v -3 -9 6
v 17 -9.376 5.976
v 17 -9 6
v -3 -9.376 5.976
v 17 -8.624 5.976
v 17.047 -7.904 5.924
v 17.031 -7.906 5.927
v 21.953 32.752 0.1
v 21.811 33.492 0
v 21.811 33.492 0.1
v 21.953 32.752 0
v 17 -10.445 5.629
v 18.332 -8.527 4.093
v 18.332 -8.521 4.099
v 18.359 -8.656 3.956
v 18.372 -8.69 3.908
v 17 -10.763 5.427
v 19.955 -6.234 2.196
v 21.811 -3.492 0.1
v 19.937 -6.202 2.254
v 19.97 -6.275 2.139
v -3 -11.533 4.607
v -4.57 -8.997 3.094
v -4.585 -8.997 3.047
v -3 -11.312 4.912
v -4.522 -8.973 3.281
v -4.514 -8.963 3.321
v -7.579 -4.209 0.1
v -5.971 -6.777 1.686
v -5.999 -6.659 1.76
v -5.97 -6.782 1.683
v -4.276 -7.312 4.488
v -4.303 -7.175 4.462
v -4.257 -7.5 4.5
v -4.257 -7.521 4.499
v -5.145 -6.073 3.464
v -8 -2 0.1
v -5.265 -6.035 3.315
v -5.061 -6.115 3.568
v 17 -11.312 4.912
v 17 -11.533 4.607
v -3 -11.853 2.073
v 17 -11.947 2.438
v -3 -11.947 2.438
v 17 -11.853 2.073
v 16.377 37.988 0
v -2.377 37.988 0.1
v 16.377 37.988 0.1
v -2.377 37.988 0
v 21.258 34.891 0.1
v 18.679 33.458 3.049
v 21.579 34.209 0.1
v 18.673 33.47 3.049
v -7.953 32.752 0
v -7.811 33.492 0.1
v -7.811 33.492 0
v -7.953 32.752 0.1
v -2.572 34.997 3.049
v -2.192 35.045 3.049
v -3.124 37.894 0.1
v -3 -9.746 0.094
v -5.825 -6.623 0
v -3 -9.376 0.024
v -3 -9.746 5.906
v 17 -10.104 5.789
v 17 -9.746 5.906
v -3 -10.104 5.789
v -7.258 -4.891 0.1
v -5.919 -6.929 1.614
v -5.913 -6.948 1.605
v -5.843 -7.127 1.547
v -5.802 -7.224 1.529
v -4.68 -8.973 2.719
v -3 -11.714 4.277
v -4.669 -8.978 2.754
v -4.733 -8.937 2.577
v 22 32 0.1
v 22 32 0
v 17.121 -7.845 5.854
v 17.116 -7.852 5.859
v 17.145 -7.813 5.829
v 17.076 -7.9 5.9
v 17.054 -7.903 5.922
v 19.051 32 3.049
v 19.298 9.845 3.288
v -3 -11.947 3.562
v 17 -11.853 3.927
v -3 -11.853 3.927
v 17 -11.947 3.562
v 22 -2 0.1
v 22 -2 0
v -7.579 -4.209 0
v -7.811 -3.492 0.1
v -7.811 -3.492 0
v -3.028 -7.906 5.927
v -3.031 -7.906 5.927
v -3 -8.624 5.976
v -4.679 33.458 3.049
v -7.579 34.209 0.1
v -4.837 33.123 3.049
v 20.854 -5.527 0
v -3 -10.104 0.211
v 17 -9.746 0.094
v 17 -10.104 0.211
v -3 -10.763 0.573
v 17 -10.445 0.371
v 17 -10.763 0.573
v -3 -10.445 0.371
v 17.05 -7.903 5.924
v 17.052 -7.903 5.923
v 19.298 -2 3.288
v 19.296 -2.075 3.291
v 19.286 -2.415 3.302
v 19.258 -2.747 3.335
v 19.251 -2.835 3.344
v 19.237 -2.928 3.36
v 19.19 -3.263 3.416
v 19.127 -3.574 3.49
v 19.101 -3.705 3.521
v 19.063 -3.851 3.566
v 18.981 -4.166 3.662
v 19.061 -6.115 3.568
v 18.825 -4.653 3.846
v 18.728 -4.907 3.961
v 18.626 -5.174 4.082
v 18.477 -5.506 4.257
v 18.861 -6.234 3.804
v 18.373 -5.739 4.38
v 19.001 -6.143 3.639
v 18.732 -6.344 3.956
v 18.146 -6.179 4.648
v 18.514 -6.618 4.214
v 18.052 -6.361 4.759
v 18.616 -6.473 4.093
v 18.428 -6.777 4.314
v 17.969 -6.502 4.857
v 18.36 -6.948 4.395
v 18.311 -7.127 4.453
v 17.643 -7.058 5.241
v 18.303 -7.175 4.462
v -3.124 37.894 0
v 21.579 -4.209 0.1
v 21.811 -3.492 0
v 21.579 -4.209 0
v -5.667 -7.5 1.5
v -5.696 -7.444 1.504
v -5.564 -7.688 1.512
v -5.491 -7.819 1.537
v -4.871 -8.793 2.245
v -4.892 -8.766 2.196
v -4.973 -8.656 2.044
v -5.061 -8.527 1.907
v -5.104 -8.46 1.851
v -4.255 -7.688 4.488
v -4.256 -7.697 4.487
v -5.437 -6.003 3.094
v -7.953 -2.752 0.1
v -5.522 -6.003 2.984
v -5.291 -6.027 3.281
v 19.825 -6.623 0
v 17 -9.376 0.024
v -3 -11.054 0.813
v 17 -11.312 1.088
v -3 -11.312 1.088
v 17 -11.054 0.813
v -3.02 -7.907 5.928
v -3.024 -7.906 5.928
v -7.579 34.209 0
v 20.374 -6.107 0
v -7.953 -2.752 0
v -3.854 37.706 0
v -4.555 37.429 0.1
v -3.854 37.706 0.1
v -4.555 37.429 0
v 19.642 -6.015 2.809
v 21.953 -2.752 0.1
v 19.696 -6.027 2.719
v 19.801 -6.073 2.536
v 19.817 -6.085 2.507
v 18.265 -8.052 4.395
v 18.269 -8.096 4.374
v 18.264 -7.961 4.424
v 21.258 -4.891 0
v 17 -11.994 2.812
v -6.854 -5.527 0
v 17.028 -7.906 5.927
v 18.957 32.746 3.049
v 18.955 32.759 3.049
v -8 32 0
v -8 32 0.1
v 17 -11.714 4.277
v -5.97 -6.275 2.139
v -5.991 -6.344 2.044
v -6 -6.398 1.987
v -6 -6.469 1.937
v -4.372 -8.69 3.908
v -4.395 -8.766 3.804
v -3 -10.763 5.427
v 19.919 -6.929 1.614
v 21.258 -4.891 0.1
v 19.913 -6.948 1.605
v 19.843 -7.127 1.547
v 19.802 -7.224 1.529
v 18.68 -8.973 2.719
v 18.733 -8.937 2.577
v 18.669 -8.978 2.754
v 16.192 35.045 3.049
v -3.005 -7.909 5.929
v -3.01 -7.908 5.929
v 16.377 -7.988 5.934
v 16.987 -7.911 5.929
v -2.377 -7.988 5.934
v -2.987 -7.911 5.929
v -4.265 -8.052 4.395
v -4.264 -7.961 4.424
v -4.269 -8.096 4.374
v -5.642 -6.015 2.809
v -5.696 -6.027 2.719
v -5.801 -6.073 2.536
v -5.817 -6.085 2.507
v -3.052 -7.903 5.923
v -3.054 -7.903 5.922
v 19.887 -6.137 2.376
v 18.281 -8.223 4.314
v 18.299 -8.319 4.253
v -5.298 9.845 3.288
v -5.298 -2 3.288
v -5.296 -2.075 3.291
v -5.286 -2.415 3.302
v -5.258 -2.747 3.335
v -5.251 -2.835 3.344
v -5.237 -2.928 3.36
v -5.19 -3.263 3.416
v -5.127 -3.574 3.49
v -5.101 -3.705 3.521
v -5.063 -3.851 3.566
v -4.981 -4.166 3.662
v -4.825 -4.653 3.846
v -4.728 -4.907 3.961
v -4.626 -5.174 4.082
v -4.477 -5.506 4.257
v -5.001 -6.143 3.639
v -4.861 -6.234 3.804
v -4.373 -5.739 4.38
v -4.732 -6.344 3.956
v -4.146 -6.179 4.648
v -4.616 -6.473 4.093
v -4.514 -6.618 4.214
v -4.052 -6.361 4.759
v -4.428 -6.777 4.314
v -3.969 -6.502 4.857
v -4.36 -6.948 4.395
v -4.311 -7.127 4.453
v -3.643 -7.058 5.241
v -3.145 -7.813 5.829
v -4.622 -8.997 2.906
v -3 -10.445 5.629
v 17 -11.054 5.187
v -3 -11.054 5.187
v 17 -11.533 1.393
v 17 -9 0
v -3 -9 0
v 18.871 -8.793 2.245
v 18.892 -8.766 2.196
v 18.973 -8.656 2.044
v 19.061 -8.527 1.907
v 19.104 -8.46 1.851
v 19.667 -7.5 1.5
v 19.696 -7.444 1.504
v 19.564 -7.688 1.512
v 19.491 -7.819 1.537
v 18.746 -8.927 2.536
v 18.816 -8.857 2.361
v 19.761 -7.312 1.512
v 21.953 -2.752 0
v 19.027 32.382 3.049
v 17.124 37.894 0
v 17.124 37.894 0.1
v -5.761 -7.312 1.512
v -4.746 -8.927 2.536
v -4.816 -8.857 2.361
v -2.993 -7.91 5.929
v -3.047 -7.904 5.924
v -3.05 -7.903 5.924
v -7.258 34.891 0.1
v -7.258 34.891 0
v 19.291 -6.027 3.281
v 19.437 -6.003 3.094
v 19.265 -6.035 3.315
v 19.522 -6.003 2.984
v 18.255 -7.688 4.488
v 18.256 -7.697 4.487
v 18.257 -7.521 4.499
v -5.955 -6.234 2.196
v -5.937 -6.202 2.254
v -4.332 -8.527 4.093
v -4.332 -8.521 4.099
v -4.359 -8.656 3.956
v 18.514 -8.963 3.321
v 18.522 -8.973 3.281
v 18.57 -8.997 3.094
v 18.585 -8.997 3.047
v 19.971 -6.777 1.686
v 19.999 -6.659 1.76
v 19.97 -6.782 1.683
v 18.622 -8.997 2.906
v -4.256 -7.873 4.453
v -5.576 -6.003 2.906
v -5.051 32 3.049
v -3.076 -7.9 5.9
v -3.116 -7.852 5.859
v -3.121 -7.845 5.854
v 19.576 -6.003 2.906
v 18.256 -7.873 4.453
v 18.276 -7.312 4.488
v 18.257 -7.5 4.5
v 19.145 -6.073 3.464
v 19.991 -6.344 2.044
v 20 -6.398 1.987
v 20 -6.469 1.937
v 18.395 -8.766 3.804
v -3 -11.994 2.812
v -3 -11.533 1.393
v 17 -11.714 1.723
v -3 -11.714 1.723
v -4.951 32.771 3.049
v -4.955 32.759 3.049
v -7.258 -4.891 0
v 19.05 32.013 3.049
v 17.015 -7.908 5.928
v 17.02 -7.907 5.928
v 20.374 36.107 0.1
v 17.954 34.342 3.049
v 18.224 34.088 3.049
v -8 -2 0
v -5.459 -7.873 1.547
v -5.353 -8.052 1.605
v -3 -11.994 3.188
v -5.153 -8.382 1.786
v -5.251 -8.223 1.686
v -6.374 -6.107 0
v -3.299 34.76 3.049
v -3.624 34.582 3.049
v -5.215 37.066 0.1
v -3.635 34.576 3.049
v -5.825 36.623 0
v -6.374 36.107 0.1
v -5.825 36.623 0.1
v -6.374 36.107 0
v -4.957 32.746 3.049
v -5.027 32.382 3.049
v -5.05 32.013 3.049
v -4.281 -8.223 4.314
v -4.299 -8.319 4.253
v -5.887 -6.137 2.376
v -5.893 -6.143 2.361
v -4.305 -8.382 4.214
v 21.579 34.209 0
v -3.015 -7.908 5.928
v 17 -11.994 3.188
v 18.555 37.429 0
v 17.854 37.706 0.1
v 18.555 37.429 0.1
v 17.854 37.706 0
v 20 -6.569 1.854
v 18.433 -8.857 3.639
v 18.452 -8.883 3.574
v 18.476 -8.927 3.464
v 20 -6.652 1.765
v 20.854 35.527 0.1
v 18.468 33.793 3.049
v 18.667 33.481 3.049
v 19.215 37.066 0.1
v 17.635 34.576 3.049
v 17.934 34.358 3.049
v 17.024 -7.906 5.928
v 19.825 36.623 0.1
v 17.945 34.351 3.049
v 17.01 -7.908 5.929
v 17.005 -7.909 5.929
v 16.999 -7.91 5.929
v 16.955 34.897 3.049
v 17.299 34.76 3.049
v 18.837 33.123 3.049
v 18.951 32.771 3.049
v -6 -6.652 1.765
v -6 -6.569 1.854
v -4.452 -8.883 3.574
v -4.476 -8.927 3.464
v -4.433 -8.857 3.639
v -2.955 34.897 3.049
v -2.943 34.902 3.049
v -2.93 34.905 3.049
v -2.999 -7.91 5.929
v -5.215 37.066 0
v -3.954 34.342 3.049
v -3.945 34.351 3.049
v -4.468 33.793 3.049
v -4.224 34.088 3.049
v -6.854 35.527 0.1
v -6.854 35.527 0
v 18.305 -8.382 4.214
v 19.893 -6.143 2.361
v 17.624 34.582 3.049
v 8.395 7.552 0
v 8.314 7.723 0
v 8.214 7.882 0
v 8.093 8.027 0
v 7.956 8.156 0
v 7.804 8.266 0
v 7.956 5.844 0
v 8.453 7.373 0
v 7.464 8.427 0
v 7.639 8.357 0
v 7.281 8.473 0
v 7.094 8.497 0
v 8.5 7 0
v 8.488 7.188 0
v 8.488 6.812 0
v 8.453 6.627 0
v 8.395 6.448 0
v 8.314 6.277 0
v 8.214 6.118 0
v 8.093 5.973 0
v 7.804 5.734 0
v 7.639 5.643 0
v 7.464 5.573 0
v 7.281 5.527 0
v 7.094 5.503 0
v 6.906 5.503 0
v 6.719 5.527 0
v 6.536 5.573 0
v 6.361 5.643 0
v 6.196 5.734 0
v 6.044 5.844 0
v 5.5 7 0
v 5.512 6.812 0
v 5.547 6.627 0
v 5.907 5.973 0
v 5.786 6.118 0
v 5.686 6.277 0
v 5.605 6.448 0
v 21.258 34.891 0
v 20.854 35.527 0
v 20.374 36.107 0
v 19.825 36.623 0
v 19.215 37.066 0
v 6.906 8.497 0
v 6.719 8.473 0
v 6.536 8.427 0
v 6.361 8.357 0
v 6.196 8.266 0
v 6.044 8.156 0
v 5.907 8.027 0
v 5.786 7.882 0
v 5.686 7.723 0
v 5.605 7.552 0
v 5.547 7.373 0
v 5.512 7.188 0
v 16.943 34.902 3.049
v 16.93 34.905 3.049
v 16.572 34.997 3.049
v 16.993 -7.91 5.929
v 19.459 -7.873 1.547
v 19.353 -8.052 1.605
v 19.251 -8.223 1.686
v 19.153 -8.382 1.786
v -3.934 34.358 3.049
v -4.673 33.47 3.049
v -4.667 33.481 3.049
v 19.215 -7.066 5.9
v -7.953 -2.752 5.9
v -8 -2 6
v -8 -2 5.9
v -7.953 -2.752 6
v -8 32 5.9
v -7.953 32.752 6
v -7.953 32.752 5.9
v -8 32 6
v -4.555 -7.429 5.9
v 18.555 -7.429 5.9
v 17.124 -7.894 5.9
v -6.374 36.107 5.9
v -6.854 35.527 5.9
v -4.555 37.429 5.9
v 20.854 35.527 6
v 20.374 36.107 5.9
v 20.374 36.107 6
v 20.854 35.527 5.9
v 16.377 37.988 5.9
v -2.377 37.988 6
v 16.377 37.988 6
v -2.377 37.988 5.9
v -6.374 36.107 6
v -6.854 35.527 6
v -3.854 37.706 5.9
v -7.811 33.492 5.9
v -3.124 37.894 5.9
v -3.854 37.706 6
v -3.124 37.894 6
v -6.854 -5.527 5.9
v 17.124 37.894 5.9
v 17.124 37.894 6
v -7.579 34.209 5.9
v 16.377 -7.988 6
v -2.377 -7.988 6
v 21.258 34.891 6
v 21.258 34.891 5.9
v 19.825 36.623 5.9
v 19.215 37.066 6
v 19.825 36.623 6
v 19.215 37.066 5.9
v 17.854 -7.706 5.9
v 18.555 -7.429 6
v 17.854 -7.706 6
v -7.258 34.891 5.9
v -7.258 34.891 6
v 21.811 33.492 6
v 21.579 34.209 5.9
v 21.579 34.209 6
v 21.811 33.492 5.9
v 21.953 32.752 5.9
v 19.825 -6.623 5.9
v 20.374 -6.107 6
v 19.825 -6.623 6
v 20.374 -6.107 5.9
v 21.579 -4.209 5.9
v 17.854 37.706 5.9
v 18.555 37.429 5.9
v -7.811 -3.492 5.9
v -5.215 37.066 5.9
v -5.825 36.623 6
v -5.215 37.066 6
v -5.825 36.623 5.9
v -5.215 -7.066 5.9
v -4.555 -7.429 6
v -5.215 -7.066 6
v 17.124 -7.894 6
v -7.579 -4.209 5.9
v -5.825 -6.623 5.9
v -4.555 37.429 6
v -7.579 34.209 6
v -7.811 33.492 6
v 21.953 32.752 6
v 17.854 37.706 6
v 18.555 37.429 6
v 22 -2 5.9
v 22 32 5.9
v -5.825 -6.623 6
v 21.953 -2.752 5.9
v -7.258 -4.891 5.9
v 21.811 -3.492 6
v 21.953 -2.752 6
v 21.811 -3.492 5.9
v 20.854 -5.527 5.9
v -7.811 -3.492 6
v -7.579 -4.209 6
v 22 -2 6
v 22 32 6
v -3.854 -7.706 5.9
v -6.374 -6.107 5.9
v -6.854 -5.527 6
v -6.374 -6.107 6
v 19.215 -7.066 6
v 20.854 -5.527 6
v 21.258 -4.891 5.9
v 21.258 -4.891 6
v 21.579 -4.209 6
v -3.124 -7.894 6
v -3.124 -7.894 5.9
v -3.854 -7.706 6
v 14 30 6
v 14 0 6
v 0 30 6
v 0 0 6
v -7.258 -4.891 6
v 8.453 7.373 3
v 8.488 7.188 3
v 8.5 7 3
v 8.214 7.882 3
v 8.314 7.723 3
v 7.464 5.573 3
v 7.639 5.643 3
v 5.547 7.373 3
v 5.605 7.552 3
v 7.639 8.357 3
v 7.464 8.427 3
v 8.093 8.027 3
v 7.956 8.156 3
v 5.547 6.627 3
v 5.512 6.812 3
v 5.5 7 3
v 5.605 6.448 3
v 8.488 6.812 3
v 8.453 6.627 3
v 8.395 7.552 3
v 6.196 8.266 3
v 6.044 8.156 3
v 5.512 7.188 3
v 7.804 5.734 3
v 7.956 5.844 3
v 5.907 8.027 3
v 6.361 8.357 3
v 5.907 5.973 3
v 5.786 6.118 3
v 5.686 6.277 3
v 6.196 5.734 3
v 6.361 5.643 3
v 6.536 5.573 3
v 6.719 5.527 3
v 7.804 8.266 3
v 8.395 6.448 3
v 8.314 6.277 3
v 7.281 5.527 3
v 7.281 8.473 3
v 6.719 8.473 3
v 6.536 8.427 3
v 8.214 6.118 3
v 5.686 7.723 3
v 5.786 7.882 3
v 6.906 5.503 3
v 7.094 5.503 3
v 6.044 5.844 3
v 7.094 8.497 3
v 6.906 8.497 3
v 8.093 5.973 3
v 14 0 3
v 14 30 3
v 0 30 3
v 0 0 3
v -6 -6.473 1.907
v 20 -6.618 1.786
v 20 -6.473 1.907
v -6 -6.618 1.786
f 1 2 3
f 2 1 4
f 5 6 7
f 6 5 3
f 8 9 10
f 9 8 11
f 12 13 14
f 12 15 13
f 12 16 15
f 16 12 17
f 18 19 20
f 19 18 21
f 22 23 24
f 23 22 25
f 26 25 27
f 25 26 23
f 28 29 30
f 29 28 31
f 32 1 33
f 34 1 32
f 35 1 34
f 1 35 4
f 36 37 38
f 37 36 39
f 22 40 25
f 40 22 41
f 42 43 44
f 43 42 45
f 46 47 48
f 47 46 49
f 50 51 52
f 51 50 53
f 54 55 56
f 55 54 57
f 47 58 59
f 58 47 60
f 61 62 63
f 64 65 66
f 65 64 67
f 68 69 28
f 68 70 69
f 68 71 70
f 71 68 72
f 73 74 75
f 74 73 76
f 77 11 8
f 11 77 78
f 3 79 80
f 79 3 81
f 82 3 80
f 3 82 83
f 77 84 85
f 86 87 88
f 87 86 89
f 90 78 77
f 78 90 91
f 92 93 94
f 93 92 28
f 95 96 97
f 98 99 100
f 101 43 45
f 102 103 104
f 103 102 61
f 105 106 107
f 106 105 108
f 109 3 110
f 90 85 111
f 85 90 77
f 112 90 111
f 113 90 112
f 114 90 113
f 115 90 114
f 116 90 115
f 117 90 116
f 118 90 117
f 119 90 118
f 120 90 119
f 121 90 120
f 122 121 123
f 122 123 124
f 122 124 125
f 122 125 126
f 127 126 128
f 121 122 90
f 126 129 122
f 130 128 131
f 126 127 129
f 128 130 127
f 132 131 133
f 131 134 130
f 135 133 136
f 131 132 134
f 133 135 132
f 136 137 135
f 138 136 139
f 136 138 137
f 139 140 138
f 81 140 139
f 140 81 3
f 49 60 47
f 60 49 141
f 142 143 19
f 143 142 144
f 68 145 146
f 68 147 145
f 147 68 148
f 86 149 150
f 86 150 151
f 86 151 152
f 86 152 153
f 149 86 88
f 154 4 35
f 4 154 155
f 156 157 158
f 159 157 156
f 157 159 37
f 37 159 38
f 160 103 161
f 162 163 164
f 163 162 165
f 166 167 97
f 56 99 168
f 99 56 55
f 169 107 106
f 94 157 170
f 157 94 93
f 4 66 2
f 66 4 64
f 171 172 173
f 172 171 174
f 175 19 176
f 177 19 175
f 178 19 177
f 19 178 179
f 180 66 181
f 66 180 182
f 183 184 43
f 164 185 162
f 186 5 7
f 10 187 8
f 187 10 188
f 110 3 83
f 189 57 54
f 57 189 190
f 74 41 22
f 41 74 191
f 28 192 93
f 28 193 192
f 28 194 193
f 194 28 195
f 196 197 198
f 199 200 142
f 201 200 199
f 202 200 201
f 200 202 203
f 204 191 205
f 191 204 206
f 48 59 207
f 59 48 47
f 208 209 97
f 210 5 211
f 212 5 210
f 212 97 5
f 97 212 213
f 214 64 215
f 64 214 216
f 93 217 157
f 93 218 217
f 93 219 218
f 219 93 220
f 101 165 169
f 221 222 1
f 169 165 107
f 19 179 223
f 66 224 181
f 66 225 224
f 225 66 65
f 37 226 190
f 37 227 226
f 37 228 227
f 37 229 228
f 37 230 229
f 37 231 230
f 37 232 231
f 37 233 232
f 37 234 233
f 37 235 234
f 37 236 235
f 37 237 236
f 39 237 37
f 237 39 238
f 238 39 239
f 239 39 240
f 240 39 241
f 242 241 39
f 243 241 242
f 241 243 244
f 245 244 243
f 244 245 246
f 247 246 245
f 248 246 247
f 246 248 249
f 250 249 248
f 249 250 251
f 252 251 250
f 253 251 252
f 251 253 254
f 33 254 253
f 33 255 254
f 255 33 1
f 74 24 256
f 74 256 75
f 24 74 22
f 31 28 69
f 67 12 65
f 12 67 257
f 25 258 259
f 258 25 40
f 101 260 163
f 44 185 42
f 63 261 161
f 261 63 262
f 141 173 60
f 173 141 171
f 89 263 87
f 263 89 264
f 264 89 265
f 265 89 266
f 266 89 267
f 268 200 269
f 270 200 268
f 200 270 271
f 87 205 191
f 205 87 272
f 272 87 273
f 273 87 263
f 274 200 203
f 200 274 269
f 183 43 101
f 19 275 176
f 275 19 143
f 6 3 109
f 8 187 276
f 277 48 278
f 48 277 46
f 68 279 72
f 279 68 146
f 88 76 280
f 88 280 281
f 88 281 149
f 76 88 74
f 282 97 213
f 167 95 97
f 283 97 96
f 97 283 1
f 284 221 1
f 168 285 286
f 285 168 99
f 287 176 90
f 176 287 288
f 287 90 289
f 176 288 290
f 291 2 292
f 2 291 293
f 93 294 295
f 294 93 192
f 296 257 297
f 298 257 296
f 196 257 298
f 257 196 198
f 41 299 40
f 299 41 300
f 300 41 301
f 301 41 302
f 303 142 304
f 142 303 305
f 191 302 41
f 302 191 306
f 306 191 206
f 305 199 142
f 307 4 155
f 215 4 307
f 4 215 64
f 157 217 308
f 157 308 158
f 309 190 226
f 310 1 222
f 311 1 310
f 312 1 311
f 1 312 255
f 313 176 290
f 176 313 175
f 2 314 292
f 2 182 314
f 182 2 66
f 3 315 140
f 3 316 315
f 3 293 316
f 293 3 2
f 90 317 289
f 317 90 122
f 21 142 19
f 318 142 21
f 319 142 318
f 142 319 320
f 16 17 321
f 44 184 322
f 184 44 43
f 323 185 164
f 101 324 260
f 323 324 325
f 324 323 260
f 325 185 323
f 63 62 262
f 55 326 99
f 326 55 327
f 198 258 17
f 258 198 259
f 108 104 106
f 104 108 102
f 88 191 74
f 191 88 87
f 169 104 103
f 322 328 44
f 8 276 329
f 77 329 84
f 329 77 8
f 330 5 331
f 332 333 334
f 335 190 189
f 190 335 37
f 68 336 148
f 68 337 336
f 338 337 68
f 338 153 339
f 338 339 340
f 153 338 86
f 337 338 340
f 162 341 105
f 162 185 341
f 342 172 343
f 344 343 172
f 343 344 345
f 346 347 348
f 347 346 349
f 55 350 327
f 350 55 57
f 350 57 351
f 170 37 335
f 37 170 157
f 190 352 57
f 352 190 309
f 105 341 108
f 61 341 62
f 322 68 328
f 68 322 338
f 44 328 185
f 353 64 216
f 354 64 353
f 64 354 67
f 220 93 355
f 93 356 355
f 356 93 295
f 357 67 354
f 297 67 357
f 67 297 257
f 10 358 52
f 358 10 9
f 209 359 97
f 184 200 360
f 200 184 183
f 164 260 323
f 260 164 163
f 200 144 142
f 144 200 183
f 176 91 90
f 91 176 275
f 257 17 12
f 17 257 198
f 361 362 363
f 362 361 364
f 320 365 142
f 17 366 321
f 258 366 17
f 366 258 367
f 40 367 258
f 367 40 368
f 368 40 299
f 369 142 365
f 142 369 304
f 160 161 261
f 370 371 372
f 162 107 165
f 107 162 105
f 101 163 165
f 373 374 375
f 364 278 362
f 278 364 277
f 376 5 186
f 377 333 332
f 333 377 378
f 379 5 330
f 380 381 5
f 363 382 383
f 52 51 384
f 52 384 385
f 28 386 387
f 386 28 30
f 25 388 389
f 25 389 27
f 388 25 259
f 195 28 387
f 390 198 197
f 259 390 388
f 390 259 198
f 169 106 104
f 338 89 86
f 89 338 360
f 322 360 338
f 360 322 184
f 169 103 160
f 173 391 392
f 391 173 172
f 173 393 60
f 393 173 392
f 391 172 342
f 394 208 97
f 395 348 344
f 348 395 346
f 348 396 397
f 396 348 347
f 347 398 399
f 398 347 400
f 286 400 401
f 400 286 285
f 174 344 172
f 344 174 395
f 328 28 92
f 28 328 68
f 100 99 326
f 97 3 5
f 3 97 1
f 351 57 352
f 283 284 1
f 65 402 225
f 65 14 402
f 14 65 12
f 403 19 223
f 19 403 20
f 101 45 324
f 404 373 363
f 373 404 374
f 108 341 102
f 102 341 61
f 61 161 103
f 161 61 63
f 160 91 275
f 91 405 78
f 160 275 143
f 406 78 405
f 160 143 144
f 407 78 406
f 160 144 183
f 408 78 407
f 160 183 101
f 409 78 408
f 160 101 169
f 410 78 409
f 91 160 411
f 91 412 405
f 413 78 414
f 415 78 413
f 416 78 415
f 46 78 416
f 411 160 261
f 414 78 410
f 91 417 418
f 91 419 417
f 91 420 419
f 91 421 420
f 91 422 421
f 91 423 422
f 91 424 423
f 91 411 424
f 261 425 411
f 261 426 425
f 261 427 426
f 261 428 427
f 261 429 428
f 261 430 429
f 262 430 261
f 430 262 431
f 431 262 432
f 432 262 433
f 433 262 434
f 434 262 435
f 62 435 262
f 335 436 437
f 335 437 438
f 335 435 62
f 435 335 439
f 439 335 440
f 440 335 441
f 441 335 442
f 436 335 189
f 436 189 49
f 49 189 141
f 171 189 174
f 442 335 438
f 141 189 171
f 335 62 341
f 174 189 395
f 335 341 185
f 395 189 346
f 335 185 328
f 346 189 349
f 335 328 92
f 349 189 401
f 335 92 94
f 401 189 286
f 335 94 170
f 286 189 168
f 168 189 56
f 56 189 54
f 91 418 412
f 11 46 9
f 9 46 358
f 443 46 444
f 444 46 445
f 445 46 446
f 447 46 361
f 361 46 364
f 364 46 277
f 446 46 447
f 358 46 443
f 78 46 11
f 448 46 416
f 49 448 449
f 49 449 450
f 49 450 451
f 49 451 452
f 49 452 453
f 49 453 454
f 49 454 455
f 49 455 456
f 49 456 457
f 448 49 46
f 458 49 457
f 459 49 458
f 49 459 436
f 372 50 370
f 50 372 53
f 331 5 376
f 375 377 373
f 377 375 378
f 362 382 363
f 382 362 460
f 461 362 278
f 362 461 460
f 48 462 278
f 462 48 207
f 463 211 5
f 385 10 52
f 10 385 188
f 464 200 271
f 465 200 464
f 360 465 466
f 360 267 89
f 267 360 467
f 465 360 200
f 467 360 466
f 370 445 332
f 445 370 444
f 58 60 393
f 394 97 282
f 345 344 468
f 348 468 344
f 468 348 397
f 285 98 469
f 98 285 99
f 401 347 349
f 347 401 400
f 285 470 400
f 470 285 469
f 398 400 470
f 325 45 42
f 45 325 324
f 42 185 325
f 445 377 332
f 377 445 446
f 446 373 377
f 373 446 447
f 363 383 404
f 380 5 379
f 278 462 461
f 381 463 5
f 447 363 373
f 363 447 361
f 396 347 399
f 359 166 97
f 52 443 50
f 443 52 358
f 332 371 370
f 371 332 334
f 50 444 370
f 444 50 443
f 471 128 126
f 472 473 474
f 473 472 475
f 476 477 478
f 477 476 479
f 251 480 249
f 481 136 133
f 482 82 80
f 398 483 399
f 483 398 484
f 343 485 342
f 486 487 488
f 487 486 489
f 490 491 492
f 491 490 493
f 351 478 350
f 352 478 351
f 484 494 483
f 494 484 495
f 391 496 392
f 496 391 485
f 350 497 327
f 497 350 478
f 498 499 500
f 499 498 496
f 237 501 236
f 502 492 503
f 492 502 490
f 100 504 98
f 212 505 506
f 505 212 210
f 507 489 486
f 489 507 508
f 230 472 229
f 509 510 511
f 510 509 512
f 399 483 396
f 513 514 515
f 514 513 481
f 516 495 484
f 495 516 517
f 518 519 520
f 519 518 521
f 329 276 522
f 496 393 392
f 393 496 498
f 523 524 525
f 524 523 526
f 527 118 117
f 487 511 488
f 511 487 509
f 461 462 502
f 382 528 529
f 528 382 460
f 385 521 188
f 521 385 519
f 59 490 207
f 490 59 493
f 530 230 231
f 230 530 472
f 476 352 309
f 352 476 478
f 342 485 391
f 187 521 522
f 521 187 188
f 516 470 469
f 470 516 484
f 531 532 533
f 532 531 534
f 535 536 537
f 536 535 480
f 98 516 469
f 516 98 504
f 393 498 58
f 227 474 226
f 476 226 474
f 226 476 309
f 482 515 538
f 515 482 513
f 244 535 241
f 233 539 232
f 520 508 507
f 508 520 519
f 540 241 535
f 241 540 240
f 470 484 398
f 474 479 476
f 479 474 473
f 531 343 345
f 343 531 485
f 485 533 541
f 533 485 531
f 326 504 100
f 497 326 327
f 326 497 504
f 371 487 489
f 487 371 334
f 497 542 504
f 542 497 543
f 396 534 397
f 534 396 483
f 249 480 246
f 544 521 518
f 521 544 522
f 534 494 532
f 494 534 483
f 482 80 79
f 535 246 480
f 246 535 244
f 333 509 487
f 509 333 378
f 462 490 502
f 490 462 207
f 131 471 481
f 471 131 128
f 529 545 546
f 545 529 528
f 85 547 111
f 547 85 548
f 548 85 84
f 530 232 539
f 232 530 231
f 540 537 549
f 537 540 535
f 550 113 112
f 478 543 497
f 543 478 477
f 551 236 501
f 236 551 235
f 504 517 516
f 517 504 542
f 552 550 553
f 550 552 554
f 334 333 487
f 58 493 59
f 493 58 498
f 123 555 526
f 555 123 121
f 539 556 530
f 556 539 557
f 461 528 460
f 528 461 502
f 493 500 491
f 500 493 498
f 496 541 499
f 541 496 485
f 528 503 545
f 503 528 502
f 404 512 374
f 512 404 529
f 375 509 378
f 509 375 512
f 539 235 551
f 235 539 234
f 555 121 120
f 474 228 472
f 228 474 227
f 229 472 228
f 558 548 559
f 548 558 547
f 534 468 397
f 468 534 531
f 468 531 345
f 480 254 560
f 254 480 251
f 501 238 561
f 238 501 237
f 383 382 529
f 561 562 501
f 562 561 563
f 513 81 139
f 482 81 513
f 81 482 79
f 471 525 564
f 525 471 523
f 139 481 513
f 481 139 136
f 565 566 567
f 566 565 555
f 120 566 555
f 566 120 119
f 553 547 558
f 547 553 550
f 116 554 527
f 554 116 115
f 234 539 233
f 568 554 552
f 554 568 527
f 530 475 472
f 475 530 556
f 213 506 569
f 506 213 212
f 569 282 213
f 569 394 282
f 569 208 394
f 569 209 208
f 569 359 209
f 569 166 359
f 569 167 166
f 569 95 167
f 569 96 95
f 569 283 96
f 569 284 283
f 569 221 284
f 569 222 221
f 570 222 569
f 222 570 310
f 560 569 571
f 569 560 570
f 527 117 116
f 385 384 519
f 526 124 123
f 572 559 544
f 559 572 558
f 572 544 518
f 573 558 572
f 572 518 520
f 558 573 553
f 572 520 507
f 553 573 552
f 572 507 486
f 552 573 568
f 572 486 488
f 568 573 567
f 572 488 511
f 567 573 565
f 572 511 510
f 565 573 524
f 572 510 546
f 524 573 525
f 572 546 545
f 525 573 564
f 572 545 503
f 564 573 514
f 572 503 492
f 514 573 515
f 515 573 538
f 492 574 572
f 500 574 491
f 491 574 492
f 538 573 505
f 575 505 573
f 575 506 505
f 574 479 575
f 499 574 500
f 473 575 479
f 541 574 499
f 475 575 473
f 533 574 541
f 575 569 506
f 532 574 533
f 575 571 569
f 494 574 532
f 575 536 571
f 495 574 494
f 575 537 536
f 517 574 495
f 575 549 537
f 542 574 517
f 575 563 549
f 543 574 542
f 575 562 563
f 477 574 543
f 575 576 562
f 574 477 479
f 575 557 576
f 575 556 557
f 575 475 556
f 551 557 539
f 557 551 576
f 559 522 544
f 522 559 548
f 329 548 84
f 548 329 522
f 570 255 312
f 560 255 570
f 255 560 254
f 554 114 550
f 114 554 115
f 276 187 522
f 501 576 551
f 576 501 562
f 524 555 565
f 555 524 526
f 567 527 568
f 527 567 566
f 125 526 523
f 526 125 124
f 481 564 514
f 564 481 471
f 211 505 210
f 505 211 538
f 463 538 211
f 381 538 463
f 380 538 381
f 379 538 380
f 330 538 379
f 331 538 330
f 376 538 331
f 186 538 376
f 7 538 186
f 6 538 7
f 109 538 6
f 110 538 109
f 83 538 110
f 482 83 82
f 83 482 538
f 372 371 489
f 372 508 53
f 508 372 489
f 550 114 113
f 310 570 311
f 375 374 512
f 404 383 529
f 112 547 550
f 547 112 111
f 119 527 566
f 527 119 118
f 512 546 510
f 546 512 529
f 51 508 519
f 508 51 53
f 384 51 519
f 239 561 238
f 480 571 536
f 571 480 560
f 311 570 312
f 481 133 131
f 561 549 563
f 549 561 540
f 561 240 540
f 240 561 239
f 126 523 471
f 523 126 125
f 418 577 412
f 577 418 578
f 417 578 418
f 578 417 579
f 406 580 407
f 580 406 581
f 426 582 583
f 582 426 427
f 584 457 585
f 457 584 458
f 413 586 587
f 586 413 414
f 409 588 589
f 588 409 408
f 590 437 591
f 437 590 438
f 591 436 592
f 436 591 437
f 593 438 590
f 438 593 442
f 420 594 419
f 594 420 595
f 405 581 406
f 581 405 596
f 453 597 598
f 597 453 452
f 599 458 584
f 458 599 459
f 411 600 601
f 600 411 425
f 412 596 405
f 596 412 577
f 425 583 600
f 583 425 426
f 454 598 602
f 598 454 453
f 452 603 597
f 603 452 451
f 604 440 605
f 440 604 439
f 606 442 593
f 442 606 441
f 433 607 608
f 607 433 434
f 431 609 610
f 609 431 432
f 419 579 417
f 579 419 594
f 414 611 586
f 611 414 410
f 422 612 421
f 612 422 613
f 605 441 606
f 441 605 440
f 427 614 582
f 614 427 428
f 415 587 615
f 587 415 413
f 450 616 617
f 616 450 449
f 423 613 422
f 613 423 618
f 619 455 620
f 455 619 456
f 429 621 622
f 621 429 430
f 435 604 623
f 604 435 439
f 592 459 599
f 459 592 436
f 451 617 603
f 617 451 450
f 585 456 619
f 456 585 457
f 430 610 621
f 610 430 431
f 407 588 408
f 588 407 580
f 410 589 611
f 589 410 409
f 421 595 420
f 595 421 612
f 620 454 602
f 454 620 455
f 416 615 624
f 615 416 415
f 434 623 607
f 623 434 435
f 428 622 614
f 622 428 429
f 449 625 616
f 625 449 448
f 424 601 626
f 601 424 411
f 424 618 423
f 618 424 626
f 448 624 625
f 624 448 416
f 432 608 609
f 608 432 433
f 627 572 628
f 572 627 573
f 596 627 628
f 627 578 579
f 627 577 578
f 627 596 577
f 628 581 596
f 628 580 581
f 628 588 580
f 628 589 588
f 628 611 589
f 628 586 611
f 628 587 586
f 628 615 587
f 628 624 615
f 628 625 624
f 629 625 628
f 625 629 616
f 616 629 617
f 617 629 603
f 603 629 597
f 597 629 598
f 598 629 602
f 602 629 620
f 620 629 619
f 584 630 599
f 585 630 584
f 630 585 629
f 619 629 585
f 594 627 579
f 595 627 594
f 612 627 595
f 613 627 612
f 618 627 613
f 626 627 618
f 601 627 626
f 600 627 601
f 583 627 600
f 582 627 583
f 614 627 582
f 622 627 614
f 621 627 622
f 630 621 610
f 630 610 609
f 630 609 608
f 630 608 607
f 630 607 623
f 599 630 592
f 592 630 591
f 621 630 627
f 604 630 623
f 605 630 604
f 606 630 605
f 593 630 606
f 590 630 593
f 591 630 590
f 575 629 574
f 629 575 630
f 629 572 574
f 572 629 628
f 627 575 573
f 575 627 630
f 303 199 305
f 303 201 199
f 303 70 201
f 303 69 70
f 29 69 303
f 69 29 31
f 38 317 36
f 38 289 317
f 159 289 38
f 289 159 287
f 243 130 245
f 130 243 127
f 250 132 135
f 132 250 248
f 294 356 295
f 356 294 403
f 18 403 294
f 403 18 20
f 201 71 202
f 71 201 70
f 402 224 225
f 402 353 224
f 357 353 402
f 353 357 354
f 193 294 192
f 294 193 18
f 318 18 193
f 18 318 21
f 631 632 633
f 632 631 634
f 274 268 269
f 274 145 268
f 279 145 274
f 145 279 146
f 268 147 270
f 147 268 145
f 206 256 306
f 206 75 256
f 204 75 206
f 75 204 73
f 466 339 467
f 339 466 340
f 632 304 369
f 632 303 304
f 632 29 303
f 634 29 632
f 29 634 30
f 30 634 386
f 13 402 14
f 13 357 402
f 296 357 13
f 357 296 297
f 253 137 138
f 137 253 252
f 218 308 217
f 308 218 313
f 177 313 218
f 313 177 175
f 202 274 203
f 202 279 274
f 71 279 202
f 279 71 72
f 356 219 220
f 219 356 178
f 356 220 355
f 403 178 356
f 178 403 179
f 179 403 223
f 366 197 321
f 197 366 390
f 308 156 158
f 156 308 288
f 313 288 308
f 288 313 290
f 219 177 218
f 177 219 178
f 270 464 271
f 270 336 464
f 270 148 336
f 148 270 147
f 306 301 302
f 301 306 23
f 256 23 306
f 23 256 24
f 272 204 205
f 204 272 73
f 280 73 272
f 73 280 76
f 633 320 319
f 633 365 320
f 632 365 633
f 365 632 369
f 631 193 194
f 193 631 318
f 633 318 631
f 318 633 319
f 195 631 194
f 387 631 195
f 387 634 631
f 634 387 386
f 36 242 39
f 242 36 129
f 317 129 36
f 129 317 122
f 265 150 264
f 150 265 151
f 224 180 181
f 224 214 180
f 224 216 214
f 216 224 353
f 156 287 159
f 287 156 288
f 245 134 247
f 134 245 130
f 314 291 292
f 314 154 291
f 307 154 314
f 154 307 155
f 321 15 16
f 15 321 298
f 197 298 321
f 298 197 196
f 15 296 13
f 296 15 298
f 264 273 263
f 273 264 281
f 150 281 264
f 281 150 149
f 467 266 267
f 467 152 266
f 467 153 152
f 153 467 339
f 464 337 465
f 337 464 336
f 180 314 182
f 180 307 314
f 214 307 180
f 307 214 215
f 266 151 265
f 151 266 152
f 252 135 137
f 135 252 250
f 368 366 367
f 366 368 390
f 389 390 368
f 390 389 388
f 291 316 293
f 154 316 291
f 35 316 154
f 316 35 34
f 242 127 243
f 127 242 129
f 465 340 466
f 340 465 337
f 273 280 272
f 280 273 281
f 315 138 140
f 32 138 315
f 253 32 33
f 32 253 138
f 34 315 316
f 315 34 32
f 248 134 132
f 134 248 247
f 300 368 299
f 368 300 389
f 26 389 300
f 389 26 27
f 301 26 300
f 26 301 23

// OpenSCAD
wireOD = 3;
sensorMountX = 14;
sensorMountY = 30;
sensorMountScrewSize = 3;
wallThickness = 2;

$fn=50;

difference() {
    // main body with rounded corners and 45 degree insets for the wire to wrap around    
    union() {
        hull() {
            for (x = [-wallThickness, sensorMountX+wallThickness]) {
            for (y = [-wallThickness, sensorMountY+wallThickness]) {
                translate([x, y, 0])
                cylinder(h = 0.1, r=wireOD*2);
                translate([x, y, wireOD])
                cylinder(h = 0.1, r=wireOD);
            }    
            }
            
            translate([-wireOD, -wireOD*3, wireOD])
            rotate([0, 90, 0])
            difference() {
            cylinder(h=sensorMountX+wireOD*2, r=wireOD);
            #cylinder(h=sensorMountX+wireOD*2, r=wireOD/2);
            }
        }
        hull() {
            for (x = [-wallThickness, sensorMountX+wallThickness]) {
            for (y = [-wallThickness, sensorMountY+wallThickness]) {
                translate([x, y, 2*wireOD-0.1])
                cylinder(h = 0.1, r=wireOD*2);
                translate([x, y, wireOD])
                cylinder(h = 0.1, r=wireOD);
            }    
            }
        

        }
    }
    
    // screw hole
    translate([sensorMountX/2, sensorMountX/2, 0])
    cylinder(h=wireOD*2, r=sensorMountScrewSize/2);
    
    // recess for sensor to sit in
    translate([0,0,wireOD])
    cube([sensorMountX, sensorMountY, wireOD]);

translate([-wireOD*2, -wireOD*2.5, wireOD])
rotate([0, 90, 0])
cylinder(h=sensorMountX+wireOD*4, r=wireOD/2);


}
